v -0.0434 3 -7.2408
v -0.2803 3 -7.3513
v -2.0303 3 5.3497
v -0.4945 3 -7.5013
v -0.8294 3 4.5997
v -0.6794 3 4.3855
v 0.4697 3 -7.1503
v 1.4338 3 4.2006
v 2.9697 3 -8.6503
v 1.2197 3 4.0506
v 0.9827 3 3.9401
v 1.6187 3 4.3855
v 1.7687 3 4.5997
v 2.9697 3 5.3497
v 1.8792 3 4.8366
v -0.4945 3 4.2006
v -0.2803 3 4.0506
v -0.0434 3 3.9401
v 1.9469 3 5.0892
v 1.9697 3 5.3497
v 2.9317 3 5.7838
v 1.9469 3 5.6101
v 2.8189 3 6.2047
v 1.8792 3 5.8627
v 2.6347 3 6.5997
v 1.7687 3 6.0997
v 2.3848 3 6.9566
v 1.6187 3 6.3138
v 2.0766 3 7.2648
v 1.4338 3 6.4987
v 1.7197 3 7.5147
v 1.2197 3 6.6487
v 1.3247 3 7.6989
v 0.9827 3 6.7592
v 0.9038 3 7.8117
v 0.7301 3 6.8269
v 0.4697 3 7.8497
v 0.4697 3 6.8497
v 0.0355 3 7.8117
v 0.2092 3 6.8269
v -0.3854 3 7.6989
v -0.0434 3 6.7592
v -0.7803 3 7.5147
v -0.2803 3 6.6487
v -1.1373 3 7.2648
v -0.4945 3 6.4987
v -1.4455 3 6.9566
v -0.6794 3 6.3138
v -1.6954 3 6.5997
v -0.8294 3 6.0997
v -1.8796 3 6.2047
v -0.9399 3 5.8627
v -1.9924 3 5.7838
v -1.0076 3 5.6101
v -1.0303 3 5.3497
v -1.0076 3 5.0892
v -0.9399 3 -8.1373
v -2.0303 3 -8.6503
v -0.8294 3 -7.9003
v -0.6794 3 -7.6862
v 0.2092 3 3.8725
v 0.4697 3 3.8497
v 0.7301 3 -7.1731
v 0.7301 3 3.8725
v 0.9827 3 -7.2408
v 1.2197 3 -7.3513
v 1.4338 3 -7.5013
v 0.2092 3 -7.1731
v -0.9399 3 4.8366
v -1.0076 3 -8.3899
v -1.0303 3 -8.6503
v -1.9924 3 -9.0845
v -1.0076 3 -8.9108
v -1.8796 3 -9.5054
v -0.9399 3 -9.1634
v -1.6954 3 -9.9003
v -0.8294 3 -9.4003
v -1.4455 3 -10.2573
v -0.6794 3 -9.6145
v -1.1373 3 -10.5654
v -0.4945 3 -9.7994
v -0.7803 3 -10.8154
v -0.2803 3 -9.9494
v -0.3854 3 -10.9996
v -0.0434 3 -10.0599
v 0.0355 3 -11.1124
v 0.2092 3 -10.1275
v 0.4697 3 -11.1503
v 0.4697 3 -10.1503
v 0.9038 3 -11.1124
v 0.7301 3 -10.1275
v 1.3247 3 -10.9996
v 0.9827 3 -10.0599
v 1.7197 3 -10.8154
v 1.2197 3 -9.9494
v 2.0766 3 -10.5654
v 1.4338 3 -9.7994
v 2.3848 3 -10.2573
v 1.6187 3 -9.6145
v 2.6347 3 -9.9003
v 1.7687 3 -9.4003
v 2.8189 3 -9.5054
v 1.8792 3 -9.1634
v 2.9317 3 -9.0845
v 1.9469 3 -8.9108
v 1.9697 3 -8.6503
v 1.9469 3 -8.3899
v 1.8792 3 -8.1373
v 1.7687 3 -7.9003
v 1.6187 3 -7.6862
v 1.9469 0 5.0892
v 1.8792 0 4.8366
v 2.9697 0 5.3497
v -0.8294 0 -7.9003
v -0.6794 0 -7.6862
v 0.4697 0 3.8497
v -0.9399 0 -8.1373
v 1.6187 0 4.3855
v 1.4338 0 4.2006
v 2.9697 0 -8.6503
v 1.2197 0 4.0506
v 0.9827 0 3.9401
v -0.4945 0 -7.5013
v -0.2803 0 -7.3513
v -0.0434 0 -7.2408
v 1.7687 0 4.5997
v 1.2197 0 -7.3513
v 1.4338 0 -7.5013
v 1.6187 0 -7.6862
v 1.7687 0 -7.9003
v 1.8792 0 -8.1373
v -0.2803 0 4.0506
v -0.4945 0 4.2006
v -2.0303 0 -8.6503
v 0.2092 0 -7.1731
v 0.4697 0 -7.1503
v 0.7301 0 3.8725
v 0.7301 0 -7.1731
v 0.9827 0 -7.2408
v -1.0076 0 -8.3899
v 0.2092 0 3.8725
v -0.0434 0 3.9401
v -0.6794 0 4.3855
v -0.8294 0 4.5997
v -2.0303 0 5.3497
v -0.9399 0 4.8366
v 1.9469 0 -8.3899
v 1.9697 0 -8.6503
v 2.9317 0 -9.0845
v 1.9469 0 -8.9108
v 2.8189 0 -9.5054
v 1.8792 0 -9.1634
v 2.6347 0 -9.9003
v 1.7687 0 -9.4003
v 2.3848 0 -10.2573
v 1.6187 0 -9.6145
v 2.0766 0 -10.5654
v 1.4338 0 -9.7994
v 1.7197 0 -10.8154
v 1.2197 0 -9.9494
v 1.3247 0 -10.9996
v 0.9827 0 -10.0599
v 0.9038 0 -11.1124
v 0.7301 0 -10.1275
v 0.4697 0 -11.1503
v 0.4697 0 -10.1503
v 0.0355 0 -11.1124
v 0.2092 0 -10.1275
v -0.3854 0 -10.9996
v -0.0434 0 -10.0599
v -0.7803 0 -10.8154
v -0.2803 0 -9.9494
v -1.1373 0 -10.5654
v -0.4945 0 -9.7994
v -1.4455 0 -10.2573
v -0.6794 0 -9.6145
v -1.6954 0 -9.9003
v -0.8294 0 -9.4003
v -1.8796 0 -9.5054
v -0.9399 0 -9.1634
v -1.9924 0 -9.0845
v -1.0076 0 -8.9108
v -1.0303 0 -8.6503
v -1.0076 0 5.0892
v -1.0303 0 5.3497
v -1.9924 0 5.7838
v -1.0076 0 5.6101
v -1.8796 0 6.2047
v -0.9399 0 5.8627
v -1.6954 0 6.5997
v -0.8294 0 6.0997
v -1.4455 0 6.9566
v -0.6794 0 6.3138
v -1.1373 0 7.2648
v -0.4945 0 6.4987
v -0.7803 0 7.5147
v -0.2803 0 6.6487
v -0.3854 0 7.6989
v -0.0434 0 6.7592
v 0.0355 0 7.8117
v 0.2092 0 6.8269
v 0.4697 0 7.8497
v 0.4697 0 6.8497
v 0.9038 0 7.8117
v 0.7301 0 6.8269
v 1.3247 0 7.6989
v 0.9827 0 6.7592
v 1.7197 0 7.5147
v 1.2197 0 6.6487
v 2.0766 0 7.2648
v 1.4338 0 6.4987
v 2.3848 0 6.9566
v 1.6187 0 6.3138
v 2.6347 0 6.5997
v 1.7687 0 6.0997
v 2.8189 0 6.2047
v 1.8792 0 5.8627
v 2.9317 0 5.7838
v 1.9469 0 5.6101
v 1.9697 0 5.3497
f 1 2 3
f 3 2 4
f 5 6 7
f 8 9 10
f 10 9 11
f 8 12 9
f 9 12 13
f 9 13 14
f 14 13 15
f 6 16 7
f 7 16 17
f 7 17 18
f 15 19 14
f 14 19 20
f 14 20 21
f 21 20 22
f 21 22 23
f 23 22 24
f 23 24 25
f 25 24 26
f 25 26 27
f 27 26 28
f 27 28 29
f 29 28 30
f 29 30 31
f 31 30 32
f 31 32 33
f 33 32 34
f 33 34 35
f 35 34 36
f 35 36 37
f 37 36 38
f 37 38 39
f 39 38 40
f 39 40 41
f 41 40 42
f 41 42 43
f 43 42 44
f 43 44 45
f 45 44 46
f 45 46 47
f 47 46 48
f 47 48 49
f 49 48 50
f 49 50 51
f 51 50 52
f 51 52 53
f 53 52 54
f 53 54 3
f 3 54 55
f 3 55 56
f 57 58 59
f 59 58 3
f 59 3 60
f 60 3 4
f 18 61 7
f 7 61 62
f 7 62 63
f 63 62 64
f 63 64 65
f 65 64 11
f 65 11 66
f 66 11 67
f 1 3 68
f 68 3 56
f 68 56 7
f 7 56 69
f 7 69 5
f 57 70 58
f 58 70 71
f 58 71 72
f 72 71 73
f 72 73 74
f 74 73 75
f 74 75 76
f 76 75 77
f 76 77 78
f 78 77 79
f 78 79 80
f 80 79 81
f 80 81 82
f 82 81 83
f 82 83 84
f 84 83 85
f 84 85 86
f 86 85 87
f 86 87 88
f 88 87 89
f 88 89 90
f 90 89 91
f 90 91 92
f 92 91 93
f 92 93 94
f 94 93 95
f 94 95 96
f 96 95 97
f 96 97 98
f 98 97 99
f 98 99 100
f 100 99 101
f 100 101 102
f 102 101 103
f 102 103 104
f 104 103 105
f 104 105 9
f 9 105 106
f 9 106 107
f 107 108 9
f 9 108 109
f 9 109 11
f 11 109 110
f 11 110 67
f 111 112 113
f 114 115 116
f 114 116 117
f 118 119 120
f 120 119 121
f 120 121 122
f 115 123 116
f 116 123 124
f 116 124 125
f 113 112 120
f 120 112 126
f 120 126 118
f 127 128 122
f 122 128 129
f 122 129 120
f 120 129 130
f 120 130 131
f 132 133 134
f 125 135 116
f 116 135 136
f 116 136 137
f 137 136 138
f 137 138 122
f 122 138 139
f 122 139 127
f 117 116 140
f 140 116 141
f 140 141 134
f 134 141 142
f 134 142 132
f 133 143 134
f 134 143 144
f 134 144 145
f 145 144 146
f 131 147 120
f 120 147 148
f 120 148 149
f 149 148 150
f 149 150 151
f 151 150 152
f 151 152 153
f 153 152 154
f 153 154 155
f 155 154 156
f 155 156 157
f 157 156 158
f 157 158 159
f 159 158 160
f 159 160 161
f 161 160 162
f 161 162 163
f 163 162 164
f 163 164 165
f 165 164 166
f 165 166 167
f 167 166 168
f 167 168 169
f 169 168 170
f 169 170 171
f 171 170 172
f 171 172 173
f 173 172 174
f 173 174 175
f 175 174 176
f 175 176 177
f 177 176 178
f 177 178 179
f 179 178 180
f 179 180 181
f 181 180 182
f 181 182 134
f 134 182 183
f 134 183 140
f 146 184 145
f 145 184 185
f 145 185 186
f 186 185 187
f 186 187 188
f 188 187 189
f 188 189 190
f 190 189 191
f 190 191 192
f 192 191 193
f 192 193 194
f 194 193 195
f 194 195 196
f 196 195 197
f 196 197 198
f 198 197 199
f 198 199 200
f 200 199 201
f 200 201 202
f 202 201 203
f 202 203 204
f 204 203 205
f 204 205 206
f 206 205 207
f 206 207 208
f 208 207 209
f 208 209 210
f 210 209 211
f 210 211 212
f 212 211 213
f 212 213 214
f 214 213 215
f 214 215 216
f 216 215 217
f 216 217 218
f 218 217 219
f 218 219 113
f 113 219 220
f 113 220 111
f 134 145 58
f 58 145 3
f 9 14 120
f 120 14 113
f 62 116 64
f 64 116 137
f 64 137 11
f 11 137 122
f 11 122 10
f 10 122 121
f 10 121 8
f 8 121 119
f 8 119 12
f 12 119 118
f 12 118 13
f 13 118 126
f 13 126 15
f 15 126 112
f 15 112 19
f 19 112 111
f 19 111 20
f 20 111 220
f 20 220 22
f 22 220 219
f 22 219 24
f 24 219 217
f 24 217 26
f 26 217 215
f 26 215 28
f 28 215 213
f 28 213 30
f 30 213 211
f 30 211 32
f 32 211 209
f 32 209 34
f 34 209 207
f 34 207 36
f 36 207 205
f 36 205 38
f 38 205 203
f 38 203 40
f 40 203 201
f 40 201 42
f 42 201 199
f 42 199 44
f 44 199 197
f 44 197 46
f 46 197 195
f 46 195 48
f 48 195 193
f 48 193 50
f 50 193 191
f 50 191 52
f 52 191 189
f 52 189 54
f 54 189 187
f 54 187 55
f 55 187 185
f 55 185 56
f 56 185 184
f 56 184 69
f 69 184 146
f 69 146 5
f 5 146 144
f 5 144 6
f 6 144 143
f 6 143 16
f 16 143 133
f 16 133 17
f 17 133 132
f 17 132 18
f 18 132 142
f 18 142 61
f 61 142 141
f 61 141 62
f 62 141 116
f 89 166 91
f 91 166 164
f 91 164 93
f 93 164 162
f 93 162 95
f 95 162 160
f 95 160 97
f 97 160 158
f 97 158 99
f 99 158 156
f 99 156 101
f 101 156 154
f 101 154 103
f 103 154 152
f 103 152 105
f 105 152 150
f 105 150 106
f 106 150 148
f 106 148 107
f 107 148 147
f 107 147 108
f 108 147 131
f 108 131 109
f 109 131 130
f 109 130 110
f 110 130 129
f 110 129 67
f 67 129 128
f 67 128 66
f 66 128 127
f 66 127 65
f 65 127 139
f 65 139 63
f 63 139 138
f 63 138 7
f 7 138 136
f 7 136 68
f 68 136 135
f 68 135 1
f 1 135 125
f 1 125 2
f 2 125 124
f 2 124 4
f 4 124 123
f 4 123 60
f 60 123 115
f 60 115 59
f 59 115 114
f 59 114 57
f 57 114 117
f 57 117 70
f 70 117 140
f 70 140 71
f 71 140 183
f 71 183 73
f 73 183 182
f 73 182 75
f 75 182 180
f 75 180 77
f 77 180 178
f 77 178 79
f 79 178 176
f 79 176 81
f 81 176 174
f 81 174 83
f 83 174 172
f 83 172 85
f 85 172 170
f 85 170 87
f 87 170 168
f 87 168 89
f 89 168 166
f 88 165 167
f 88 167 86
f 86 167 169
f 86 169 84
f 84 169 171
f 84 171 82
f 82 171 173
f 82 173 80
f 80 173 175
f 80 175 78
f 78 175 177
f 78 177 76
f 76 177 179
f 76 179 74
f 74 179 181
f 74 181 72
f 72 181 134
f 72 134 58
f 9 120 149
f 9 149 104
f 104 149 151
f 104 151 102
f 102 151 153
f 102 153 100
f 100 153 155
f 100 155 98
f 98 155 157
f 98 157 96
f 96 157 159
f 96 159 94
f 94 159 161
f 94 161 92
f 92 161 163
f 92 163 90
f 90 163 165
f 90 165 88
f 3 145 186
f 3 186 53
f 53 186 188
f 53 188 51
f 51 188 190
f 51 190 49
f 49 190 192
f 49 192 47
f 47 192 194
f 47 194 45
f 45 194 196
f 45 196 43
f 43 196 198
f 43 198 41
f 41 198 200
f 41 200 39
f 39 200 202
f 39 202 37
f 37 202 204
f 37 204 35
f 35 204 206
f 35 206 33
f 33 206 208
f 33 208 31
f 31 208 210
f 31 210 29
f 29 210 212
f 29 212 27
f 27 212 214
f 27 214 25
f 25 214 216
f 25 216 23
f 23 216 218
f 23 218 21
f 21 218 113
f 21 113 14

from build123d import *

# Parameters (mm, degrees)
SKETCH1_W           = 5
SKETCH1_H           = 19
SKETCH1_R           = 1.5
BOSS_EXTRUDE1_DEPTH = 3
FILLET1_R           = 2.5


with BuildPart() as part:
    # Sketch1 → Boss-Extrude1 (new body)
    with BuildSketch(Plane(origin=(0, 0, 0), x_dir=(1, 0, 0), z_dir=(0, 1, 0))):
        with Locations((0.46965829, 1.650333526)):
            Rectangle(SKETCH1_W, SKETCH1_H)
        with Locations(Location((0.46965829, -5.349666474, 0), (0, 0, 270))):
            Circle(SKETCH1_R, mode=Mode.SUBTRACT)
        with Locations(Location((0.46965829, 8.650333526, 0), (0, 0, 270))):
            Circle(SKETCH1_R, mode=Mode.SUBTRACT)
    extrude(amount=BOSS_EXTRUDE1_DEPTH)

    # Fillet1
    fillet1_edges = [part.edges().sort_by_distance(p)[0] for p in [
        (2.96965829, 1.5, -11.150333526),
        (-2.03034171, 1.5, -11.150333526),
        (2.96965829, 1.5, 7.849666474),
        (-2.03034171, 1.5, 7.849666474),
    ]]
    fillet(fillet1_edges, radius=FILLET1_R - 0.0001)  # a hair under: the kernel refuses the full size


solid = part.part
